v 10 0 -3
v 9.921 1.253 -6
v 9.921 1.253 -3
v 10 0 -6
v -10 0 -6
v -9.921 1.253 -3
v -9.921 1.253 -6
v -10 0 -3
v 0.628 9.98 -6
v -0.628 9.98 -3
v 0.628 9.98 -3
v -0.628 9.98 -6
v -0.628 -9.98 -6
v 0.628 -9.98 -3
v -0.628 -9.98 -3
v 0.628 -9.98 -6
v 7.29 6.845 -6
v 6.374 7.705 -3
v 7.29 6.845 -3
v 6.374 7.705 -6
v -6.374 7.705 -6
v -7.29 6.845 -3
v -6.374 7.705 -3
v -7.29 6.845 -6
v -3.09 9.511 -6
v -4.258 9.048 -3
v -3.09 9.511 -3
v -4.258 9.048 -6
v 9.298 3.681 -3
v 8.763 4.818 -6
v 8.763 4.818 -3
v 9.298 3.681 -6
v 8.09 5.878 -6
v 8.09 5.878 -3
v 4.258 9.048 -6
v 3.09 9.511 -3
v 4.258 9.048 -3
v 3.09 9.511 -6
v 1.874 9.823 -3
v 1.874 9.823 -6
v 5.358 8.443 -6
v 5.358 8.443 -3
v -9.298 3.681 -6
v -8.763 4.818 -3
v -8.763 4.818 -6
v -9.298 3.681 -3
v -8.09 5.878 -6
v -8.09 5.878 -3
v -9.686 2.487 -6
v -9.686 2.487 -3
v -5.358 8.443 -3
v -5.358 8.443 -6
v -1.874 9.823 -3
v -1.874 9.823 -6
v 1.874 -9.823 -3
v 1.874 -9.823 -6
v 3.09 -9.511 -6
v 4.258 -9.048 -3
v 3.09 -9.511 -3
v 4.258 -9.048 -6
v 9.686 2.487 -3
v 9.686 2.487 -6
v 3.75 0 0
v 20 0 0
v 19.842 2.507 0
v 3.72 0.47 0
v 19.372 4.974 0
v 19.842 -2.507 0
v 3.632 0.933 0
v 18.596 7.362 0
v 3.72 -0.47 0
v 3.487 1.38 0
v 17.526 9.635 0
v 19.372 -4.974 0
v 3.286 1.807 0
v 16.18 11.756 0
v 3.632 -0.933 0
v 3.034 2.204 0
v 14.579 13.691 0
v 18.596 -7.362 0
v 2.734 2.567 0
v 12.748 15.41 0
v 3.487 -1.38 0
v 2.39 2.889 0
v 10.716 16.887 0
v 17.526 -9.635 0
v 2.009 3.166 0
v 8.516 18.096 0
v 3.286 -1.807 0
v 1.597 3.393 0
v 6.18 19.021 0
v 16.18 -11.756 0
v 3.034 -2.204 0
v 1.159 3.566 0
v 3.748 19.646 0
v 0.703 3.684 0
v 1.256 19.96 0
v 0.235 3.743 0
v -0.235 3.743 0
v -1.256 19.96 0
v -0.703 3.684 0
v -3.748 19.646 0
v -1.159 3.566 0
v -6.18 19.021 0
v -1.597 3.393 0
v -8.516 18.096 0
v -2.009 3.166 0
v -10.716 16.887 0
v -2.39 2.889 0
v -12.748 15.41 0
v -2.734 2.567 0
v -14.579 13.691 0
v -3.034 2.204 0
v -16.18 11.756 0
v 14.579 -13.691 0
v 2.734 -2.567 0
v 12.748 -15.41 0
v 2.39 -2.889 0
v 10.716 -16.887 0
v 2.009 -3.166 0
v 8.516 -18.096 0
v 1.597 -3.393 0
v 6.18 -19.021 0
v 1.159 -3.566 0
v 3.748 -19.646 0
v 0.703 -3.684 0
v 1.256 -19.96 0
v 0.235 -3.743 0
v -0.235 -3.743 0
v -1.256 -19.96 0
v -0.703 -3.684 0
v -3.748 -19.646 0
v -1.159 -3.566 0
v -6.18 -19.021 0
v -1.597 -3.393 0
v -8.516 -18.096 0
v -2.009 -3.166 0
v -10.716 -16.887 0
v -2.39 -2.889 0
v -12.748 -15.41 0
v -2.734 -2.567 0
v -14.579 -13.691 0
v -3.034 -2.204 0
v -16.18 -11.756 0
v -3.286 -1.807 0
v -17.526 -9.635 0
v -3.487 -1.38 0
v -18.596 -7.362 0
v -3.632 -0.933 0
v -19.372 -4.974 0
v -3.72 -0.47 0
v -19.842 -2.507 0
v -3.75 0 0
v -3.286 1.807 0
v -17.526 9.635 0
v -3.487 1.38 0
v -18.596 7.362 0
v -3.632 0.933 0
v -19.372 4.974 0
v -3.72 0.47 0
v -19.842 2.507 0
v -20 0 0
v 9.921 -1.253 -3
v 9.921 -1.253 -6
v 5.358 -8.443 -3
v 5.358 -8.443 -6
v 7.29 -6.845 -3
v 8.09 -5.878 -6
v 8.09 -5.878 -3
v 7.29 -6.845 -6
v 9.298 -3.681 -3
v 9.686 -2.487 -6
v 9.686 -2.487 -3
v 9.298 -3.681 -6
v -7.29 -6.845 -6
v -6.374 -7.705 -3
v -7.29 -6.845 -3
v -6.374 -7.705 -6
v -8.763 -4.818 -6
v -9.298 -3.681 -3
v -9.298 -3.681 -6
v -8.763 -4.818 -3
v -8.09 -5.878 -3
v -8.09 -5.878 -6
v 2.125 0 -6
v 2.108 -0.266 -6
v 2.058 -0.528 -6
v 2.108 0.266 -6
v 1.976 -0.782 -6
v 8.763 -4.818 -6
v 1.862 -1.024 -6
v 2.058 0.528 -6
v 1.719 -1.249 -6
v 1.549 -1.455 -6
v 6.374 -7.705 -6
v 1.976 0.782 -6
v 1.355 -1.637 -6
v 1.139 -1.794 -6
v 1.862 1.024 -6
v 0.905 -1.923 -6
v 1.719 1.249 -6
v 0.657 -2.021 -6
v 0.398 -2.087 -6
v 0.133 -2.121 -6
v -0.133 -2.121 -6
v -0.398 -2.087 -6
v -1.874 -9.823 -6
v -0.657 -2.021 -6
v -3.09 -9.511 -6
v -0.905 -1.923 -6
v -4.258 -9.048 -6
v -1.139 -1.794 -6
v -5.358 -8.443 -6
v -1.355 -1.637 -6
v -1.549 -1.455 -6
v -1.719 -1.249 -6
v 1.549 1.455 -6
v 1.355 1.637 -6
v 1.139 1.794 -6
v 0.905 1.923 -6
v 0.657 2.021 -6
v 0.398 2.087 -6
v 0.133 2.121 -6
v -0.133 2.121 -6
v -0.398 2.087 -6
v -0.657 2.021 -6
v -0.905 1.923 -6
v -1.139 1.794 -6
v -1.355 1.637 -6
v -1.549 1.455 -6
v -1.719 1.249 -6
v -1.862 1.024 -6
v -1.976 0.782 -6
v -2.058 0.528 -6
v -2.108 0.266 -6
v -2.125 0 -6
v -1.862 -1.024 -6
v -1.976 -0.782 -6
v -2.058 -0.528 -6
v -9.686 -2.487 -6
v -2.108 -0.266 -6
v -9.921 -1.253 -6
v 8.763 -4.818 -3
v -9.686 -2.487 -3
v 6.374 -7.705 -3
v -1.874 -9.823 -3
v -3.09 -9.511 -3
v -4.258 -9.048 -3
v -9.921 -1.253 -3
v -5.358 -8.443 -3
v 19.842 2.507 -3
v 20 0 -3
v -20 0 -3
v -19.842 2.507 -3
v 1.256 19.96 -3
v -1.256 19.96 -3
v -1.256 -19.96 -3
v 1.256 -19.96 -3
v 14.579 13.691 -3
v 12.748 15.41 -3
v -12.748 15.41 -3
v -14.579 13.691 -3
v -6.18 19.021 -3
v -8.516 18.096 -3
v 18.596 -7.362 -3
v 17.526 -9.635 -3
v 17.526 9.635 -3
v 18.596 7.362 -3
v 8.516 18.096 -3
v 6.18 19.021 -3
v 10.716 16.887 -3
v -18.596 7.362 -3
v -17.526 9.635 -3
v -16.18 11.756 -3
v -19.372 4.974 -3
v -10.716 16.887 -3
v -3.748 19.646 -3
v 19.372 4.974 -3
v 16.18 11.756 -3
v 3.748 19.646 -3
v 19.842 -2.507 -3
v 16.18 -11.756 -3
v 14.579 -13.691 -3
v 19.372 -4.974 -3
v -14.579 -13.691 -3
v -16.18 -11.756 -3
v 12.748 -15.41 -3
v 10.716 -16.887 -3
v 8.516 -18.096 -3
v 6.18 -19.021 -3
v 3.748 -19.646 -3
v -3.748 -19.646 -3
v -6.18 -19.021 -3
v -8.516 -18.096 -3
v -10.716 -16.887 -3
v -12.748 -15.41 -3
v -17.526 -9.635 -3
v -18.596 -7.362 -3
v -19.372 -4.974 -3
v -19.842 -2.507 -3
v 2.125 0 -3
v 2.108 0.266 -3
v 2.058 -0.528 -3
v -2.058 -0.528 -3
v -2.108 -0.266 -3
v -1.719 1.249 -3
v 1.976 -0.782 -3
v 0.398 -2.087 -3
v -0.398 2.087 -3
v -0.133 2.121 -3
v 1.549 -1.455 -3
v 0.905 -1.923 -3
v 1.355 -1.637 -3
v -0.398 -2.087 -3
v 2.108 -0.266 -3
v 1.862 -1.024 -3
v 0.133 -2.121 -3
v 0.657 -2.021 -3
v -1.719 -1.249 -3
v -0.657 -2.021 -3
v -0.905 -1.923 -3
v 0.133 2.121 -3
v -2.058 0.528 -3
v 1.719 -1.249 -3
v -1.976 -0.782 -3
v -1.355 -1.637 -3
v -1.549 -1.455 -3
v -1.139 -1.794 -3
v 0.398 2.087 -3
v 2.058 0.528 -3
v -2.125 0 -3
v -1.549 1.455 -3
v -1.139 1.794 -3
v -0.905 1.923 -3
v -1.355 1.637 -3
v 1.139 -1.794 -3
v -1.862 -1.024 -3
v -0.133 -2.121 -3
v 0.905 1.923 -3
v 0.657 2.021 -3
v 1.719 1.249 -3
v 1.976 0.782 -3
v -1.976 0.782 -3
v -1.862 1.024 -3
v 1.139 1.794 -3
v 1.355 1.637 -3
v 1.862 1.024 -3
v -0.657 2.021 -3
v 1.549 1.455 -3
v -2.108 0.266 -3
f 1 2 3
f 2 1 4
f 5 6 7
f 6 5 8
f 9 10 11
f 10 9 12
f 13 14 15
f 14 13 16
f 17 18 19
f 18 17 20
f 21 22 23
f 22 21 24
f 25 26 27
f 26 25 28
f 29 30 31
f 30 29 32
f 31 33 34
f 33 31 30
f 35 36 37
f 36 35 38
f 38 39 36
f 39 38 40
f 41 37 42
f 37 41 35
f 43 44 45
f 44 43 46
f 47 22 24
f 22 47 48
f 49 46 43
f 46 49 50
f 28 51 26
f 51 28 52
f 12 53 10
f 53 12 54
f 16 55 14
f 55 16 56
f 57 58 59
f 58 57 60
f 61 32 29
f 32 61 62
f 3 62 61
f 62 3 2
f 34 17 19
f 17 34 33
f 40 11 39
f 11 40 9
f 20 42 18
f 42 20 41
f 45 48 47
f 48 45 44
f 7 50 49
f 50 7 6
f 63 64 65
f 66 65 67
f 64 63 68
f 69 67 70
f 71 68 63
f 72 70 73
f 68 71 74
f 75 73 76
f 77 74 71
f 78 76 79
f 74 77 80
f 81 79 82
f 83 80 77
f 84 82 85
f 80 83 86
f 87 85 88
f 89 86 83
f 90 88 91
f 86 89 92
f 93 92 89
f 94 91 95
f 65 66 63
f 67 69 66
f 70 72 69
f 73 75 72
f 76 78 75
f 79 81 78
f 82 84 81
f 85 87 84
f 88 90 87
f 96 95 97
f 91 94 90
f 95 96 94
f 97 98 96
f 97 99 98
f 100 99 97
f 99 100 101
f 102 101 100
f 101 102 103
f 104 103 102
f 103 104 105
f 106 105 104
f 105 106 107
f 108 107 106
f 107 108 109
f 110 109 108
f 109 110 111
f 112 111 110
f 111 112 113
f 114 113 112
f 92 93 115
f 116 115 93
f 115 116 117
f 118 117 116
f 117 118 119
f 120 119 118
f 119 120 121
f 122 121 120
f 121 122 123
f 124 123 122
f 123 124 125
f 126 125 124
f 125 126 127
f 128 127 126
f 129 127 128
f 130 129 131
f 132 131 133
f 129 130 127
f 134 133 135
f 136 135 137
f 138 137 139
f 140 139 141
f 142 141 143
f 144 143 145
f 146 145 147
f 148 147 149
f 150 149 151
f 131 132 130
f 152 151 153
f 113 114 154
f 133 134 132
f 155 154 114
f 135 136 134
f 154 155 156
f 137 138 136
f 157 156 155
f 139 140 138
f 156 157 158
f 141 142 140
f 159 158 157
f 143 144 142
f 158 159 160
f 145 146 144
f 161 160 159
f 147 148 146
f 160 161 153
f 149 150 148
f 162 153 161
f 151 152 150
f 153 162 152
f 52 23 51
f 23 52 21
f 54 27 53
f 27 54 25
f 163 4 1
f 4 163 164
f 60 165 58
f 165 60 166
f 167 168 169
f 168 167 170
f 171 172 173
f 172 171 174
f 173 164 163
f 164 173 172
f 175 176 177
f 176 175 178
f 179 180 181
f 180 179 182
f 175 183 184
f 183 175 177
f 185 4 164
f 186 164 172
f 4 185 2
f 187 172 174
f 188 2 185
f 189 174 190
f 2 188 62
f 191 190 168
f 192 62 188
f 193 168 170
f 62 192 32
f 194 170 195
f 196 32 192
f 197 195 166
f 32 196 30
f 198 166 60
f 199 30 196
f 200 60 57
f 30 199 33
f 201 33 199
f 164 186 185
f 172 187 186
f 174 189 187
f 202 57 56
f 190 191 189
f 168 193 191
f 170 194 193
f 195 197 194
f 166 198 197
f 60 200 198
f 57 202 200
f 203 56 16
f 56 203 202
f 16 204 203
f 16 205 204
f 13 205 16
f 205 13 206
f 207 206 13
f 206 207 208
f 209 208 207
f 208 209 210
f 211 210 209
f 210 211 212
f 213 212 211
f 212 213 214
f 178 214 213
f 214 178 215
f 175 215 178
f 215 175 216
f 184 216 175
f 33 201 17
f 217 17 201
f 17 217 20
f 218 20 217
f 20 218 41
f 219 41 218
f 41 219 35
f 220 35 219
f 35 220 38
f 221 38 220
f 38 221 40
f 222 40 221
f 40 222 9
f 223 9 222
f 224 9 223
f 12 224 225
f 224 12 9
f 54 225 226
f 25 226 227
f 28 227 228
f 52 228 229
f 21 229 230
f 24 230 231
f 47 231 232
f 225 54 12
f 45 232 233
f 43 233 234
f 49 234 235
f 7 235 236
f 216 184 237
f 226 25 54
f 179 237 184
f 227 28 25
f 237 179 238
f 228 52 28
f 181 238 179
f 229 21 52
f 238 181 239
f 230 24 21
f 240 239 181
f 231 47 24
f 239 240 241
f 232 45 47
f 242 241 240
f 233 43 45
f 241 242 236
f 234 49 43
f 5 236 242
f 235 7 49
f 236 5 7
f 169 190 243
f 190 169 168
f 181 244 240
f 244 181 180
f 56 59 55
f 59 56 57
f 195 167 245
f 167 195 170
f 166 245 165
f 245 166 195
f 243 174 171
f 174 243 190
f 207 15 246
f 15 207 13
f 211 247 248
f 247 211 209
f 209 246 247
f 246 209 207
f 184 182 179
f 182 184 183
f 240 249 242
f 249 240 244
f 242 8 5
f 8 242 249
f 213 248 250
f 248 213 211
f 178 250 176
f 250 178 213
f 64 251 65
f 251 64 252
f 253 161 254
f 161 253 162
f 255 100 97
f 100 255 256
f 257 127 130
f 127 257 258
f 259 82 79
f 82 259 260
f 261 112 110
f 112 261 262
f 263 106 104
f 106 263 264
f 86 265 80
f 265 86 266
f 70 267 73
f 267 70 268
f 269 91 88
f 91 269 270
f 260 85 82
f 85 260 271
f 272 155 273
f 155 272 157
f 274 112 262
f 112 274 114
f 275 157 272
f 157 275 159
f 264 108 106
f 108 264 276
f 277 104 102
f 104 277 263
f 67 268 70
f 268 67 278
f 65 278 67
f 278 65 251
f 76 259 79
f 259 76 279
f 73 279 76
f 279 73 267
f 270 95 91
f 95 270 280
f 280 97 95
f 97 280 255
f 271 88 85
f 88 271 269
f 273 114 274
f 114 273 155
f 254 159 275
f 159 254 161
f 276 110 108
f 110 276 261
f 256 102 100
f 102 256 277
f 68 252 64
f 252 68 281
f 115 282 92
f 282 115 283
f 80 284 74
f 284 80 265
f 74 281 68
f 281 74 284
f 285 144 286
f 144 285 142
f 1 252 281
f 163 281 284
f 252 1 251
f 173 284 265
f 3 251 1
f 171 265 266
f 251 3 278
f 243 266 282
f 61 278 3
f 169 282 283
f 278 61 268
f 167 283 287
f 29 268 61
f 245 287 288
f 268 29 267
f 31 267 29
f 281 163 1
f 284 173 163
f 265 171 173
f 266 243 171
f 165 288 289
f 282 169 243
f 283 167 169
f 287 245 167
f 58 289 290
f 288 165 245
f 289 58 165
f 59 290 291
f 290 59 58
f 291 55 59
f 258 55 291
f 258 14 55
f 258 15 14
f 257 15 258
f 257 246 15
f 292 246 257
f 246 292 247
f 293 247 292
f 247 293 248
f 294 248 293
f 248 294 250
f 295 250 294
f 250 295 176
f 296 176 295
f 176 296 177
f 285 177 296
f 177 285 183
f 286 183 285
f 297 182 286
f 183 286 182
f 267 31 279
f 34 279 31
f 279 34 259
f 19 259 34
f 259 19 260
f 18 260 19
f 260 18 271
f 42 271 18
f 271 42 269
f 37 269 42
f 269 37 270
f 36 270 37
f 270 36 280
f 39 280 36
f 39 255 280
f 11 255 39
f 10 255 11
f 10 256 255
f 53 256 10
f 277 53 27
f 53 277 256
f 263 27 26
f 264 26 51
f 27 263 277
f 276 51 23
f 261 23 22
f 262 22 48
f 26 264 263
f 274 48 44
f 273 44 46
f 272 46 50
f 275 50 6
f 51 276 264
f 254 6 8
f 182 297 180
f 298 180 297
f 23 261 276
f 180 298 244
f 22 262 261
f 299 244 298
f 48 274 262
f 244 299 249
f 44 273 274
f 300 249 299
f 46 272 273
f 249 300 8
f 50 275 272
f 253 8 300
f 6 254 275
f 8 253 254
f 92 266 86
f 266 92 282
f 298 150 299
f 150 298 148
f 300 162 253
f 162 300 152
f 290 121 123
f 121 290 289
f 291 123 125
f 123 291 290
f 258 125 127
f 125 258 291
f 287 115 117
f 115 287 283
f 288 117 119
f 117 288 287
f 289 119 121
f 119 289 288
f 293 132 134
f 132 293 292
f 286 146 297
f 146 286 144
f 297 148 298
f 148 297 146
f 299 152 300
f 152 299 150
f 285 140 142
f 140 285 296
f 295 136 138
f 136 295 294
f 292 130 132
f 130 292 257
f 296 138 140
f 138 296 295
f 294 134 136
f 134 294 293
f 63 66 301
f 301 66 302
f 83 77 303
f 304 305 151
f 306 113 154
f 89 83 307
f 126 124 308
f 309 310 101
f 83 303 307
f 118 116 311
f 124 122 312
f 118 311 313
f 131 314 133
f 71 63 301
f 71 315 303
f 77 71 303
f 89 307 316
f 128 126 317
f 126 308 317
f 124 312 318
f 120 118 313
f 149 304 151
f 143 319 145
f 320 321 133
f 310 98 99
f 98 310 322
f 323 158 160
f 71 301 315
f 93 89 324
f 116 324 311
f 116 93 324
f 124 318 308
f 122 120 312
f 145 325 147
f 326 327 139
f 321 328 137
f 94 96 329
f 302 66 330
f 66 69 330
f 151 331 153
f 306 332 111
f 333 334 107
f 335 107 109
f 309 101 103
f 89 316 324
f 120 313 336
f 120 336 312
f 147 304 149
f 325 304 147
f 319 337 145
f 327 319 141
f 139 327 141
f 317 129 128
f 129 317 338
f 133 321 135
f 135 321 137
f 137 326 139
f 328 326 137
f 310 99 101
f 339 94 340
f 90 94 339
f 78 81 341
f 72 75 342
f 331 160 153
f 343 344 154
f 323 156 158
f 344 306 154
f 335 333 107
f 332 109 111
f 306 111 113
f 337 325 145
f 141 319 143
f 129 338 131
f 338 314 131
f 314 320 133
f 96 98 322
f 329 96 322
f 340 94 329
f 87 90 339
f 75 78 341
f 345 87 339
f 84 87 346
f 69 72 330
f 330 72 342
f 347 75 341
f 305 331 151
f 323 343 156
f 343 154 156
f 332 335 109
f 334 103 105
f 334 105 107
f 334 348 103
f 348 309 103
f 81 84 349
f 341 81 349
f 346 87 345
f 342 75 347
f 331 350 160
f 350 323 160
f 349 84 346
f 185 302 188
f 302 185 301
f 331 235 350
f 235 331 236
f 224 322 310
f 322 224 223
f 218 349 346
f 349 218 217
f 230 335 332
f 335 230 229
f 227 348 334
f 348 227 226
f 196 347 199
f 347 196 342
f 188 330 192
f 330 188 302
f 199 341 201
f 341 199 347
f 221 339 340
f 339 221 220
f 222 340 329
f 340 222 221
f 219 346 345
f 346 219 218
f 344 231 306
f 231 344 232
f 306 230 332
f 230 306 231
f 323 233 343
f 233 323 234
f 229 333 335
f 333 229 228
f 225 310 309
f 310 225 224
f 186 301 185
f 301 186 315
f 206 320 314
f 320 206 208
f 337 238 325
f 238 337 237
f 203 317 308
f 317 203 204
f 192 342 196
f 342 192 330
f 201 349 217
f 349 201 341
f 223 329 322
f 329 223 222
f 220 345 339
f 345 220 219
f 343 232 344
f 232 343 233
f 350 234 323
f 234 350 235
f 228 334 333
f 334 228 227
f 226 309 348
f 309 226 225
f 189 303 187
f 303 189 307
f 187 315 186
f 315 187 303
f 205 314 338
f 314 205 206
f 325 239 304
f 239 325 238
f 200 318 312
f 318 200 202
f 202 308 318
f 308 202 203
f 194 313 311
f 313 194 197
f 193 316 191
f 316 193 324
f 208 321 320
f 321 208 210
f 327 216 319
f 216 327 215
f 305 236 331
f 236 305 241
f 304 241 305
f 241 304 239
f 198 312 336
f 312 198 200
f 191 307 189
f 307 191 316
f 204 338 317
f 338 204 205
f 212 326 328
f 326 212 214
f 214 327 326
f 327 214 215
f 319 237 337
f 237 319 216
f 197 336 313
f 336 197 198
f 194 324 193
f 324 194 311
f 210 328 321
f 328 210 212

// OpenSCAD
$fn = 50;


difference() {
	union() {
		translate(v = [0, 0, -6.0000000000]) {
			cylinder(h = 6, r = 10.0000000000);
		}
		translate(v = [0, 0, -3.0000000000]) {
			cylinder(h = 3, r = 20.0000000000);
		}
	}
	union() {
		translate(v = [0, 0, 0]) {
			rotate(a = [0, 0, 0]) {
				difference() {
					union() {
						#translate(v = [0, 0, -6.0000000000]) {
							cylinder(h = 6, r = 2.0000000000);
						}
						#translate(v = [0, 0, -3]) {
							cylinder(h = 3, r1 = 2.1250000000, r2 = 3.7500000000);
						}
						#translate(v = [0, 0, -6.0000000000]) {
							cylinder(h = 6, r = 2.1250000000);
						}
						#translate(v = [0, 0, -6.0000000000]) {
							cylinder(h = 6, r = 2.0000000000);
						}
					}
					union();
				}
			}
		}
	}
}
